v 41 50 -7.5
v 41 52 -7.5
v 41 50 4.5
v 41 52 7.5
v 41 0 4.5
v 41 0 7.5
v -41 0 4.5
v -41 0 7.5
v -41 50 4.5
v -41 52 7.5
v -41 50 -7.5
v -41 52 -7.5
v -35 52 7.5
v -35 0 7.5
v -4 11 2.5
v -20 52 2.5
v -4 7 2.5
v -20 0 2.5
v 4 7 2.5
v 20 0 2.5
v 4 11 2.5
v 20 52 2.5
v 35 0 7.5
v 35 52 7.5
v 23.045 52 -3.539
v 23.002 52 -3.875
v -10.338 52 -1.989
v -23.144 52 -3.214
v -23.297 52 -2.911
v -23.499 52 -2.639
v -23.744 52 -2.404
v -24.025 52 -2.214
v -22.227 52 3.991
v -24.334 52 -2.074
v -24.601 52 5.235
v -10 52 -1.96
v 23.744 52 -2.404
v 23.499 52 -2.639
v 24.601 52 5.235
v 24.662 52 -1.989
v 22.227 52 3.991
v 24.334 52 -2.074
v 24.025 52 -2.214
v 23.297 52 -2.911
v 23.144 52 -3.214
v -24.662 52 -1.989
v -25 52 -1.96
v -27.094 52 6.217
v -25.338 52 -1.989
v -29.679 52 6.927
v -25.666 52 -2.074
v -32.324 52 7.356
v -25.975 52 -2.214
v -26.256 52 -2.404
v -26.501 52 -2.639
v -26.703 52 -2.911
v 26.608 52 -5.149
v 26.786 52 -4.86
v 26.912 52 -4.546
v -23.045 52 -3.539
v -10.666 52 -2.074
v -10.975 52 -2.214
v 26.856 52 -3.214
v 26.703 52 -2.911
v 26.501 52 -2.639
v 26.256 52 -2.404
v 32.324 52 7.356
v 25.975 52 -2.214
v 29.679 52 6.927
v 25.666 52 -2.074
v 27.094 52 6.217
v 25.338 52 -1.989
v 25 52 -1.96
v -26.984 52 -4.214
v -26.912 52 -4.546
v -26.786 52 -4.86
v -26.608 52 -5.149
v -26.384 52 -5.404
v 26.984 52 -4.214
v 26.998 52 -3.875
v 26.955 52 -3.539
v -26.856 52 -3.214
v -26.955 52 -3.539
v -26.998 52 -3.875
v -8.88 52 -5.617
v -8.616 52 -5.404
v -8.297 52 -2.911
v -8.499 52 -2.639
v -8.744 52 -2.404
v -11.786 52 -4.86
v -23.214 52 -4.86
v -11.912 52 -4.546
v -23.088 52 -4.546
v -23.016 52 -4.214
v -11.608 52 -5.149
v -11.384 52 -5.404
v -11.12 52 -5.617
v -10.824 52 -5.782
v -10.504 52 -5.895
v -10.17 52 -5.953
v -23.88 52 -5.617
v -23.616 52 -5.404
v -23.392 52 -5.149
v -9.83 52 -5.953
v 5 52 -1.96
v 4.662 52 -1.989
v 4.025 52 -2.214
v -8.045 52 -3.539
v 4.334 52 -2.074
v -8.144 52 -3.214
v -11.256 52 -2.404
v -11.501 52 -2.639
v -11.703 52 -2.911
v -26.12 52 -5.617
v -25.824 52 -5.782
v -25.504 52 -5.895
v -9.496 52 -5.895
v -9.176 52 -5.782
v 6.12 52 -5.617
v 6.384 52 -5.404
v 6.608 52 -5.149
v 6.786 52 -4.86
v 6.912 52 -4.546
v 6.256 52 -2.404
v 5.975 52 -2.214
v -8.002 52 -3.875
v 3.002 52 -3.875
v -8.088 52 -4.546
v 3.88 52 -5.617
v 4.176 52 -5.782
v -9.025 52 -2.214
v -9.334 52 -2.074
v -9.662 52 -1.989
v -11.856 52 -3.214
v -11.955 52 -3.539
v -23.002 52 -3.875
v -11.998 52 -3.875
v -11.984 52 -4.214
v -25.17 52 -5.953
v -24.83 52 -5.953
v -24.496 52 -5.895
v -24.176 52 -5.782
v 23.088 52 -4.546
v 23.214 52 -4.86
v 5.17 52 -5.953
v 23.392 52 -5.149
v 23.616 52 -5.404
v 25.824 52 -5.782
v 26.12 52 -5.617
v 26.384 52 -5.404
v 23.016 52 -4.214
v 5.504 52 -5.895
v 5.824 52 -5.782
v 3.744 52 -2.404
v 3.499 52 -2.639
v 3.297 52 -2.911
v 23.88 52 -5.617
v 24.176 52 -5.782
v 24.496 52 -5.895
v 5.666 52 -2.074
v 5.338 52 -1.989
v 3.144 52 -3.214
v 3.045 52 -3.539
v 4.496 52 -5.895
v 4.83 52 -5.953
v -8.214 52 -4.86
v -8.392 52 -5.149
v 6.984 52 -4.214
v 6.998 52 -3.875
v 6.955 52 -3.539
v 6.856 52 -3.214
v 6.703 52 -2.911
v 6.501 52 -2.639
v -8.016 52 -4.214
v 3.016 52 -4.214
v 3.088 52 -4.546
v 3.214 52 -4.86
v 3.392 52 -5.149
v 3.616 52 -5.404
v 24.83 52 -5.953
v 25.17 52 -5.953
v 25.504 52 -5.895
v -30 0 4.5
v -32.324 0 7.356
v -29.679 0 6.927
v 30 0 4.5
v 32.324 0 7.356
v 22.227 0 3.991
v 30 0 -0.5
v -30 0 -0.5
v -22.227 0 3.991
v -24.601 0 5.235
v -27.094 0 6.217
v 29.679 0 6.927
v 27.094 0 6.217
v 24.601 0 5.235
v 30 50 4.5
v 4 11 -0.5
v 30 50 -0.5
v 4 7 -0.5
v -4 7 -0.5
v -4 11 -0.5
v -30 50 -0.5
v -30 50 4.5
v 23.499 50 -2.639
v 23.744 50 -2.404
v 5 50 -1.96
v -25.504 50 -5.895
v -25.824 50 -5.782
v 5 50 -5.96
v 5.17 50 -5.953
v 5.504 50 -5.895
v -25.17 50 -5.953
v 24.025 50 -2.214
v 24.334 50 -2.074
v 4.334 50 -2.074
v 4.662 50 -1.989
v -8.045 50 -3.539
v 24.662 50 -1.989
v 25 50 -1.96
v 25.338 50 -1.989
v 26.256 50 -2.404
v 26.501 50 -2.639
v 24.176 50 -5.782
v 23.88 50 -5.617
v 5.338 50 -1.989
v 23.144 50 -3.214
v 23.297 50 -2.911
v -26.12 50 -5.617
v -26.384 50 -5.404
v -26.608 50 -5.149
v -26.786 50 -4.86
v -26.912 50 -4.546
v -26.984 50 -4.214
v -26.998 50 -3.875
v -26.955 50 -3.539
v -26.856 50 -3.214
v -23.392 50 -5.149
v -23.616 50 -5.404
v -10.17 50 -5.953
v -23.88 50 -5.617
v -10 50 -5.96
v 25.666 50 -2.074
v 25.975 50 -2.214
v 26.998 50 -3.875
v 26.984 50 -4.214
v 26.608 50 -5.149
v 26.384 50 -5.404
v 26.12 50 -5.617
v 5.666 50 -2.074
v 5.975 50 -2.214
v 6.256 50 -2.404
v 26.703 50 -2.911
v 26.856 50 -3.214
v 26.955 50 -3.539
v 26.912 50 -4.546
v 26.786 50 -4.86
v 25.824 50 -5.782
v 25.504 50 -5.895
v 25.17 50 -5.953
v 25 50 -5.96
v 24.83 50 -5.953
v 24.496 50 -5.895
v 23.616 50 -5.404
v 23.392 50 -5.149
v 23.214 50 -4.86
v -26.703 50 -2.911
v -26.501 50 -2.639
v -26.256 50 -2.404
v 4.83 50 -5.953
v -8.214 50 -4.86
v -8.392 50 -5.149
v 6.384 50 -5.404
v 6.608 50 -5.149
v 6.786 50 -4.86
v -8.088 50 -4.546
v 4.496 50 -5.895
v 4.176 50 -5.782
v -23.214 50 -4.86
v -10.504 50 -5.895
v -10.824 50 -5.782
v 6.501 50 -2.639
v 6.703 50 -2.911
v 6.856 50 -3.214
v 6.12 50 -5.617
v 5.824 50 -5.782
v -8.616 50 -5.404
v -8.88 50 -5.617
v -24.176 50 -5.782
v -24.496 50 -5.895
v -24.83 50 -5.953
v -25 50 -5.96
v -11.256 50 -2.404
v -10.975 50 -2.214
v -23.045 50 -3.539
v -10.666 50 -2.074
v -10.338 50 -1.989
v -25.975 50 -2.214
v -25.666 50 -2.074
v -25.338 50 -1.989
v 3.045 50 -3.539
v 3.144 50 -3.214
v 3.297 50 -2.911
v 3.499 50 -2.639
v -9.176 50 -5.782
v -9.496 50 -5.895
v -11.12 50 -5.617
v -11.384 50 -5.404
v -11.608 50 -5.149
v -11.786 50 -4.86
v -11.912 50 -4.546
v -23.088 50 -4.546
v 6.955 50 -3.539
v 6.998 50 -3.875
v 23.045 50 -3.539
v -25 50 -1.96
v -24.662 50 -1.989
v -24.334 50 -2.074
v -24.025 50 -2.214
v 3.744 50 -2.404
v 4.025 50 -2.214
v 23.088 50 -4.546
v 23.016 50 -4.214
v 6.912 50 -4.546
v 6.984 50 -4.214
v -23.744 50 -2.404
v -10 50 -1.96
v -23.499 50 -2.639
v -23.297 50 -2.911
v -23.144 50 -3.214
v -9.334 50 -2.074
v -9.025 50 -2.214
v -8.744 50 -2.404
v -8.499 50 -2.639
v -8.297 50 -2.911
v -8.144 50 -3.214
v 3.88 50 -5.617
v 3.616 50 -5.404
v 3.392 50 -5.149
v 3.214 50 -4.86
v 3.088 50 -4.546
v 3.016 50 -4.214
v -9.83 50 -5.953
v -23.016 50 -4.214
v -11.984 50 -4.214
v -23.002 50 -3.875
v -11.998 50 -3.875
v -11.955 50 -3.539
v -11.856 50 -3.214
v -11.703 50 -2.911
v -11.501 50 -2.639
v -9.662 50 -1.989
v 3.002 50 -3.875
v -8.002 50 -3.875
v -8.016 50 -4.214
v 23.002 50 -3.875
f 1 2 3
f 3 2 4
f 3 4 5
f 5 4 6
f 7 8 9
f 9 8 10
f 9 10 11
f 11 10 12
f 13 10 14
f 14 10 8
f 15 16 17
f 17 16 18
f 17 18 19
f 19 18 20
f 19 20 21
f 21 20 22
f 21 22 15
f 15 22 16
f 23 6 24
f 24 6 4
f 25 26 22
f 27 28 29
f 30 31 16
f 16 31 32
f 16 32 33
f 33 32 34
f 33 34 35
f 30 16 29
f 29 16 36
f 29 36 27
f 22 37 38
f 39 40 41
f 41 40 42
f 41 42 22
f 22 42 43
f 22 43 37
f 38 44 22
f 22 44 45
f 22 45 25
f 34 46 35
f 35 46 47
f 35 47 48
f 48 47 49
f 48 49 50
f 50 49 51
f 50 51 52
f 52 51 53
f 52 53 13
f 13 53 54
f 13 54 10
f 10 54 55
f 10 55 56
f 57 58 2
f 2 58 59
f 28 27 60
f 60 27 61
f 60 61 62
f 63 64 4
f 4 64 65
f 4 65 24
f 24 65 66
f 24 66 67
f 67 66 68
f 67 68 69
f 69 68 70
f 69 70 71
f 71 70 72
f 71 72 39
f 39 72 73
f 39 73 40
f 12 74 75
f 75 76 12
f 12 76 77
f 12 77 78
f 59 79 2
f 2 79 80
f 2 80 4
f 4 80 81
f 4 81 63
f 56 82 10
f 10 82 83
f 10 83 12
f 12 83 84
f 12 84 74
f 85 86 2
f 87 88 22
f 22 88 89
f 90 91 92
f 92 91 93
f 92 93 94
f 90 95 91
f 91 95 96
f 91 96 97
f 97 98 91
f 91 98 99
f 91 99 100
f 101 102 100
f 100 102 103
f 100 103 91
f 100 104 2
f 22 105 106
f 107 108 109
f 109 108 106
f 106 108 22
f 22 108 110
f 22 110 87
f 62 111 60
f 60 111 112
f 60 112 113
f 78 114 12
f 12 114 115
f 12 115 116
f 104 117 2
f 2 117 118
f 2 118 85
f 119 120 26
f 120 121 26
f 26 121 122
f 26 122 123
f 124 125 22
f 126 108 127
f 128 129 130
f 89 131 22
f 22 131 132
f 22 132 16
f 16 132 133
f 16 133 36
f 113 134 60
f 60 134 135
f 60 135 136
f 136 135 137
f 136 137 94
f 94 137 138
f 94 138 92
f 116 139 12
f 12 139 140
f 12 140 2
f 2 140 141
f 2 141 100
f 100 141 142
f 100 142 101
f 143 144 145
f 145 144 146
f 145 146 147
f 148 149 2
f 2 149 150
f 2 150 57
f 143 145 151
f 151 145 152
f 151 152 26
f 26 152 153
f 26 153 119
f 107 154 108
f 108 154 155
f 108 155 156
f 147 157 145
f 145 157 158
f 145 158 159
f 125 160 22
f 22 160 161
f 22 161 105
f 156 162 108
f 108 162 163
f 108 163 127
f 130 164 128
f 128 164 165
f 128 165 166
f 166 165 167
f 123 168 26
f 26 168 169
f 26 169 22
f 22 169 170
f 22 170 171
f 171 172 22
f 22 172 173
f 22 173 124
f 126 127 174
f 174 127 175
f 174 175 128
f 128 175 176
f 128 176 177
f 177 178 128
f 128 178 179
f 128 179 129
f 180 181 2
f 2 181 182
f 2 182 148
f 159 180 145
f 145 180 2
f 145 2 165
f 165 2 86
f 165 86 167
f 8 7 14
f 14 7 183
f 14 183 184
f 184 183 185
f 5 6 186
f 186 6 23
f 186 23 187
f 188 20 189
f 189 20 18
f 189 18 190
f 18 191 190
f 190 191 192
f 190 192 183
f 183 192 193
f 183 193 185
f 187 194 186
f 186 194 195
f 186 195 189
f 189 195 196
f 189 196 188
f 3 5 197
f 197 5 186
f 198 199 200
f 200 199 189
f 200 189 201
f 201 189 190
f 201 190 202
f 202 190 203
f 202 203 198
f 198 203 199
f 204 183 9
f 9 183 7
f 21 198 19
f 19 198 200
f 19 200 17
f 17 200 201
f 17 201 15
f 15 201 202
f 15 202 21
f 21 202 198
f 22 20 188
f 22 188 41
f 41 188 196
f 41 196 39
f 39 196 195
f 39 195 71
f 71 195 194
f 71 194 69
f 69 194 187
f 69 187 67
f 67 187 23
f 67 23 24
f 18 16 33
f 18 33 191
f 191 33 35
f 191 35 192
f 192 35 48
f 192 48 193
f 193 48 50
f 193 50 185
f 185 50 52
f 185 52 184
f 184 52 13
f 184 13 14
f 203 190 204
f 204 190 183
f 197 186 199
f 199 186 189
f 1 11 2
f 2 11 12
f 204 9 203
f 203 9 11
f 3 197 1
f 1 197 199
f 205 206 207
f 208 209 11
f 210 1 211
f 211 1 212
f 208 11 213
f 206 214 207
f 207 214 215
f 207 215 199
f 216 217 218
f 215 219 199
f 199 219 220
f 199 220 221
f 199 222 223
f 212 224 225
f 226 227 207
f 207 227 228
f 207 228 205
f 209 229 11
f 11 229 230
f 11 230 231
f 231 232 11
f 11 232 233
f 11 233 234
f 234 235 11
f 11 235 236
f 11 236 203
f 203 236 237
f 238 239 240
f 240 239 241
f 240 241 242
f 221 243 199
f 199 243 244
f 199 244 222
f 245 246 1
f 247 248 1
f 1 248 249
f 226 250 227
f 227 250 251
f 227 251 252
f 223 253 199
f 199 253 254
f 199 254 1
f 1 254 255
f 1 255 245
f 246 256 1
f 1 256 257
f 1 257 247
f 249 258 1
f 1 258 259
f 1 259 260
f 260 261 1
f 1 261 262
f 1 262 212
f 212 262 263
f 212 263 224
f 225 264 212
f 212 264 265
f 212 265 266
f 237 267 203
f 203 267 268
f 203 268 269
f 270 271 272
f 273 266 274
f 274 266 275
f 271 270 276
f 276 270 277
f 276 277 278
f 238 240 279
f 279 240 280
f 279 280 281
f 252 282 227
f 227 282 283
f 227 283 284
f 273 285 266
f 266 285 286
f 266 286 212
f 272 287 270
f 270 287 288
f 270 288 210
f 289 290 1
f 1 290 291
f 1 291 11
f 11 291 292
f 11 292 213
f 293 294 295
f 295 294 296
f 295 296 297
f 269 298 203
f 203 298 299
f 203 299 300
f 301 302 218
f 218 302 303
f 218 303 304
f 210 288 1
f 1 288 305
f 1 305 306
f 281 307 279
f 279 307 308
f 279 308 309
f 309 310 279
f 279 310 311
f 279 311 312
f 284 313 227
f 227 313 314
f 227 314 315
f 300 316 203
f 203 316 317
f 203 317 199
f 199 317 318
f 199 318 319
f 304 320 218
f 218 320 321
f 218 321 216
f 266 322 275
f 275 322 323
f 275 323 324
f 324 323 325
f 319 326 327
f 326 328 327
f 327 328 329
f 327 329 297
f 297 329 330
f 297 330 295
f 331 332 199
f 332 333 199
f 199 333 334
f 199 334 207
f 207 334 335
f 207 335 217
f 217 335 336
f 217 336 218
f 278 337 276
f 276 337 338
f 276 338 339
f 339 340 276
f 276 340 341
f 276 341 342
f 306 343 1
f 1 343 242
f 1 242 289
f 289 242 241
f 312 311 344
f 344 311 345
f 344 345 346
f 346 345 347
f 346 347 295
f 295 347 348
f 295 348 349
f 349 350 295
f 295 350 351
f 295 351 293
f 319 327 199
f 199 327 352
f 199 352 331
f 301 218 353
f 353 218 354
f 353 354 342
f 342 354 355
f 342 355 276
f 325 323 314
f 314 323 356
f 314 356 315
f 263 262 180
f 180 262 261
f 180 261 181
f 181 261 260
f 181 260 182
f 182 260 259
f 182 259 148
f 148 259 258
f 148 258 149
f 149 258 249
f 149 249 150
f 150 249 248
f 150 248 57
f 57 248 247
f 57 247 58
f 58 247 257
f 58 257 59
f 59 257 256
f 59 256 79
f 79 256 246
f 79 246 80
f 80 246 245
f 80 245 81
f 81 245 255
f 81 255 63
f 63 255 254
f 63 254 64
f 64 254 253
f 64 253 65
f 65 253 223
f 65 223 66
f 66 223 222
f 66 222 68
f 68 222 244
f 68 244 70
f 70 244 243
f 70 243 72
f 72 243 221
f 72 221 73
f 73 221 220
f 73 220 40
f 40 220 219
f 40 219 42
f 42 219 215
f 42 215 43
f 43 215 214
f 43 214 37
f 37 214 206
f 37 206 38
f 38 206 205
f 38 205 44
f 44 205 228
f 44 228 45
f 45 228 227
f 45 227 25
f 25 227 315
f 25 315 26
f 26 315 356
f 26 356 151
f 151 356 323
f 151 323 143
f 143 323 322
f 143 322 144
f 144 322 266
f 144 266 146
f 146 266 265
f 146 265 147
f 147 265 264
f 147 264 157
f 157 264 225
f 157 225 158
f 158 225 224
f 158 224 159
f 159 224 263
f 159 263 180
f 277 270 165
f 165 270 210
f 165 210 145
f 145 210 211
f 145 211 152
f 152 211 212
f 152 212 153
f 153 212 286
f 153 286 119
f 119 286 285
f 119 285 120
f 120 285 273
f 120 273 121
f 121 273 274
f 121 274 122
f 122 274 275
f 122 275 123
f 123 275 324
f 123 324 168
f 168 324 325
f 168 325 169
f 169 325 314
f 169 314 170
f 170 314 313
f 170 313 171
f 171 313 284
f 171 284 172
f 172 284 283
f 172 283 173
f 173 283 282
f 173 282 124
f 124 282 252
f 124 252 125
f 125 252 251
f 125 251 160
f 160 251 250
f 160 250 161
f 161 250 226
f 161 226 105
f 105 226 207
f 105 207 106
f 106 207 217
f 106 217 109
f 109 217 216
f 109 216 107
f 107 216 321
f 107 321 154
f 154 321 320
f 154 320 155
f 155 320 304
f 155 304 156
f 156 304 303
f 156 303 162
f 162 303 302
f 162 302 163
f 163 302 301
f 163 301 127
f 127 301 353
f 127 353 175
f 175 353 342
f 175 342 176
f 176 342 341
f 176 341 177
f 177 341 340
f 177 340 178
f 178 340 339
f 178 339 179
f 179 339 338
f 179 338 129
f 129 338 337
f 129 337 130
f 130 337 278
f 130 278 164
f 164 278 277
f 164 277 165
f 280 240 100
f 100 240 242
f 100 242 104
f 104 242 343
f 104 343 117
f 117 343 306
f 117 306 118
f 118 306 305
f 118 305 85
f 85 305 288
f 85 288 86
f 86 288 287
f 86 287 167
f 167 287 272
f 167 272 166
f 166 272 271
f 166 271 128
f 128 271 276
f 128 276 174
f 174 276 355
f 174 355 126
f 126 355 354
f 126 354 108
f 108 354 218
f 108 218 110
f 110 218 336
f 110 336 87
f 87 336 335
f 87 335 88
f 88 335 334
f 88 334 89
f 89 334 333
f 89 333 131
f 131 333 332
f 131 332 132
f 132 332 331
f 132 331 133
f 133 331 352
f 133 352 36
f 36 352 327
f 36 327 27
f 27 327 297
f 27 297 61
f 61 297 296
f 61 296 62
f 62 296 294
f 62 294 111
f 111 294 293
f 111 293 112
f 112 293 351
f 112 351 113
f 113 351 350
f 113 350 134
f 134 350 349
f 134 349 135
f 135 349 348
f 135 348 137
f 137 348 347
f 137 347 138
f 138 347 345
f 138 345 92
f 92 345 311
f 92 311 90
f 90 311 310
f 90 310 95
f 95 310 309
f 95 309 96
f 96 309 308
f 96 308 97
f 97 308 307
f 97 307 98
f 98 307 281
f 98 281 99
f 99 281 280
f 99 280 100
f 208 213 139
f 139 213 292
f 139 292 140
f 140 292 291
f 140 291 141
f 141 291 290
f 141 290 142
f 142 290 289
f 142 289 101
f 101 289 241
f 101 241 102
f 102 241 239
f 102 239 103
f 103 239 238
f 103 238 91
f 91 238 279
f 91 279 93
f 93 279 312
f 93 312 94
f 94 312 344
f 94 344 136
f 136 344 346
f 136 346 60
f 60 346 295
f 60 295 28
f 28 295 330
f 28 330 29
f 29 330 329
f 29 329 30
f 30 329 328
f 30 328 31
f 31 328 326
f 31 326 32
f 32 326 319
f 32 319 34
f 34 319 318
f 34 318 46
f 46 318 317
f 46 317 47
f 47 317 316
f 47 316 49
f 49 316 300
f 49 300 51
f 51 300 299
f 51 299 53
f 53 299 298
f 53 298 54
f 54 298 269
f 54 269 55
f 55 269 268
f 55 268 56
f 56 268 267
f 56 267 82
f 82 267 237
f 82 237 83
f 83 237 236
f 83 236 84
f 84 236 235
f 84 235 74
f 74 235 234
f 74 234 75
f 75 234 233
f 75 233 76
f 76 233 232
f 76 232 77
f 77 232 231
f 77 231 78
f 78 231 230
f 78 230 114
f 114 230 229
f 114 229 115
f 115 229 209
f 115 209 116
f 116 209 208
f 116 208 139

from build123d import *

# Parameters (mm, degrees)
BOSS_EXTRUDE1_DEPTH = 52
CUT_EXTRUDE1_DEPTH  = 52
CHAMFER2_SIZE       = 10
SKETCH3_W           = 8
SKETCH3_H           = 4
CUT_EXTRUDE2_DEPTH  = 52
FILLET1_R           = 25
SKETCH4_W           = 3
SKETCH4_H           = 5
CUT_EXTRUDE3_DEPTH  = 52
BOSS_EXTRUDE2_DEPTH = 2
SKETCH6_R           = 2
CUT_EXTRUDE4_DEPTH  = 21


with BuildPart() as part:
    # Sketch1 → Boss-Extrude1 (new body)
    with BuildSketch(Plane(origin=(0, 0, 0), x_dir=(1, 0, 0), z_dir=(0, 1, 0))):
        Polygon((-41, -7.5), (-30, -7.5), (-30, -2.5), (30, -2.5), (30, -7.5), (41, -7.5), (41, 7.5), (-41, 7.5), align=None)
    extrude(amount=BOSS_EXTRUDE1_DEPTH)

    # Sketch2 → Cut-Extrude1 (cut)
    with BuildSketch(Plane(origin=(0, 52, 0), x_dir=(1, 0, 0), z_dir=(0, 1, 0))):
        Polygon((-41, -4.5), (-33, -4.5), (-33, 0.5), (33, 0.5), (33, -4.5), (41, -4.5), (41, 7.5), (33, 7.5), (-33, 7.5), (-41, 7.5), align=None)
    extrude(amount=-CUT_EXTRUDE1_DEPTH, mode=Mode.SUBTRACT)

    # Chamfer2
    # the kernel refuses this chamfer: 10 mm, written as the material it adds along each edge
    with BuildSketch(Plane(origin=(30, 0, 2.5), x_dir=(-0.9996219169112968, 0, -0.02749587661058636), z_dir=(0, 1, 0))) as chamfer2_piece_1_section:
        Polygon((CHAMFER2_SIZE * 0.999621916911, CHAMFER2_SIZE * 0.0274958766106), (-CHAMFER2_SIZE * 0.0274958766106, CHAMFER2_SIZE * 0.999621916911), (0, 0), align=None)
    chamfer2_piece_1 = extrude(amount=52, mode=Mode.PRIVATE)
    chamfer2_piece_1 = split(chamfer2_piece_1, bisect_by=Plane(origin=(26.065989159, 26, 7.5), z_dir=(0, 0, -1)), keep=Keep.TOP, mode=Mode.PRIVATE)
    add(chamfer2_piece_1)
    with BuildSketch(Plane(origin=(-30, 0, 2.5), x_dir=(-0.027495876610586317, 0, 0.9996219169112968), z_dir=(0, 1, 0))) as chamfer2_piece_2_section:
        Polygon((CHAMFER2_SIZE * 0.999621916911, CHAMFER2_SIZE * 0.0274958766106), (-CHAMFER2_SIZE * 0.0274958766106, CHAMFER2_SIZE * 0.999621916911), (0, 0), align=None)
    chamfer2_piece_2 = extrude(amount=52, mode=Mode.PRIVATE)
    chamfer2_piece_2 = split(chamfer2_piece_2, bisect_by=Plane(origin=(-26.065989159, 26, 7.5), z_dir=(0, 0, -1)), keep=Keep.TOP, mode=Mode.PRIVATE)
    add(chamfer2_piece_2)

    # Sketch3 → Cut-Extrude2 (cut)
    with BuildSketch(Plane.XY.offset(2.5)):
        with Locations((0, 9)):
            Rectangle(SKETCH3_W, SKETCH3_H)
    extrude(amount=-CUT_EXTRUDE2_DEPTH, mode=Mode.SUBTRACT)

    # Fillet1
    # the kernel refuses this fillet: 25 mm, written as the material it takes off along each edge
    with BuildSketch(Plane(origin=(25, -25, 7.5), x_dir=(-0.7071067811862641, 0, -0.7071067811868309), z_dir=(0, 1, 0)), Plane(origin=(-25, 77, 7.5), x_dir=(0.7071067811868301, 0, -0.7071067811862649), z_dir=(0, -1, 0))) as fillet1_piece_1:
        with BuildLine():
            CenterArc((10.606601718, -24.748737342), FILLET1_R, 98.130102354, 36.869897646)
            Line((-7.071067812, -7.071067812), (-7.424621202, -6.717514421))
            Line((-7.424621202, -6.717514421), (-0.353553391, 0.353553391))
            Line((-0.353553391, 0.353553391), (0, 0.5))
            ThreePointArc((0, 0.5), (3.535533906, 0.5), (7.000357134, 0.494974747))
            Line((7.000357134, 0.494974747), (7.071067812, 0))
        make_face()
    extrude(amount=102, mode=Mode.SUBTRACT)

    # Sketch4 → Cut-Extrude3 (cut)
    with BuildSketch(Plane(origin=(0, 52, 0), x_dir=(1, 0, 0), z_dir=(0, 1, 0))):
        with Locations((-31.5, -2)):
            Rectangle(SKETCH4_W, SKETCH4_H)
        with Locations((31.5, -2)):
            Rectangle(SKETCH4_W, SKETCH4_H)
    extrude(amount=-CUT_EXTRUDE3_DEPTH, mode=Mode.SUBTRACT)

    # Sketch5 → Boss-Extrude2 (add)
    with BuildSketch(Plane(origin=(0, 52, 0), x_dir=(1, 0, 0), z_dir=(0, 1, 0))):
        Polygon((-30, 0.5), (30, 0.5), (30, -4.5), (41, -4.5), (41, 7.5), (30, 7.5), (-30, 7.5), (-41, 7.5), (-41, -4.5), (-30, -4.5), align=None)
    extrude(amount=-BOSS_EXTRUDE2_DEPTH)

    # Sketch6 → Cut-Extrude4 (cut)
    with BuildSketch(Plane(origin=(0, 52, 0), x_dir=(1, 0, 0), z_dir=(0, 1, 0))):
        with Locations(Location((-25, 3.96, 0), (0, 0, 270))):
            Circle(SKETCH6_R)
        with Locations(Location((-10, 3.96, 0), (0, 0, 270))):
            Circle(SKETCH6_R)
        with Locations(Location((5, 3.96, 0), (0, 0, 270))):
            Circle(SKETCH6_R)
        with Locations(Location((25, 3.96, 0), (0, 0, 270))):
            Circle(SKETCH6_R)
    extrude(amount=-CUT_EXTRUDE4_DEPTH, mode=Mode.SUBTRACT)


solid = part.part
